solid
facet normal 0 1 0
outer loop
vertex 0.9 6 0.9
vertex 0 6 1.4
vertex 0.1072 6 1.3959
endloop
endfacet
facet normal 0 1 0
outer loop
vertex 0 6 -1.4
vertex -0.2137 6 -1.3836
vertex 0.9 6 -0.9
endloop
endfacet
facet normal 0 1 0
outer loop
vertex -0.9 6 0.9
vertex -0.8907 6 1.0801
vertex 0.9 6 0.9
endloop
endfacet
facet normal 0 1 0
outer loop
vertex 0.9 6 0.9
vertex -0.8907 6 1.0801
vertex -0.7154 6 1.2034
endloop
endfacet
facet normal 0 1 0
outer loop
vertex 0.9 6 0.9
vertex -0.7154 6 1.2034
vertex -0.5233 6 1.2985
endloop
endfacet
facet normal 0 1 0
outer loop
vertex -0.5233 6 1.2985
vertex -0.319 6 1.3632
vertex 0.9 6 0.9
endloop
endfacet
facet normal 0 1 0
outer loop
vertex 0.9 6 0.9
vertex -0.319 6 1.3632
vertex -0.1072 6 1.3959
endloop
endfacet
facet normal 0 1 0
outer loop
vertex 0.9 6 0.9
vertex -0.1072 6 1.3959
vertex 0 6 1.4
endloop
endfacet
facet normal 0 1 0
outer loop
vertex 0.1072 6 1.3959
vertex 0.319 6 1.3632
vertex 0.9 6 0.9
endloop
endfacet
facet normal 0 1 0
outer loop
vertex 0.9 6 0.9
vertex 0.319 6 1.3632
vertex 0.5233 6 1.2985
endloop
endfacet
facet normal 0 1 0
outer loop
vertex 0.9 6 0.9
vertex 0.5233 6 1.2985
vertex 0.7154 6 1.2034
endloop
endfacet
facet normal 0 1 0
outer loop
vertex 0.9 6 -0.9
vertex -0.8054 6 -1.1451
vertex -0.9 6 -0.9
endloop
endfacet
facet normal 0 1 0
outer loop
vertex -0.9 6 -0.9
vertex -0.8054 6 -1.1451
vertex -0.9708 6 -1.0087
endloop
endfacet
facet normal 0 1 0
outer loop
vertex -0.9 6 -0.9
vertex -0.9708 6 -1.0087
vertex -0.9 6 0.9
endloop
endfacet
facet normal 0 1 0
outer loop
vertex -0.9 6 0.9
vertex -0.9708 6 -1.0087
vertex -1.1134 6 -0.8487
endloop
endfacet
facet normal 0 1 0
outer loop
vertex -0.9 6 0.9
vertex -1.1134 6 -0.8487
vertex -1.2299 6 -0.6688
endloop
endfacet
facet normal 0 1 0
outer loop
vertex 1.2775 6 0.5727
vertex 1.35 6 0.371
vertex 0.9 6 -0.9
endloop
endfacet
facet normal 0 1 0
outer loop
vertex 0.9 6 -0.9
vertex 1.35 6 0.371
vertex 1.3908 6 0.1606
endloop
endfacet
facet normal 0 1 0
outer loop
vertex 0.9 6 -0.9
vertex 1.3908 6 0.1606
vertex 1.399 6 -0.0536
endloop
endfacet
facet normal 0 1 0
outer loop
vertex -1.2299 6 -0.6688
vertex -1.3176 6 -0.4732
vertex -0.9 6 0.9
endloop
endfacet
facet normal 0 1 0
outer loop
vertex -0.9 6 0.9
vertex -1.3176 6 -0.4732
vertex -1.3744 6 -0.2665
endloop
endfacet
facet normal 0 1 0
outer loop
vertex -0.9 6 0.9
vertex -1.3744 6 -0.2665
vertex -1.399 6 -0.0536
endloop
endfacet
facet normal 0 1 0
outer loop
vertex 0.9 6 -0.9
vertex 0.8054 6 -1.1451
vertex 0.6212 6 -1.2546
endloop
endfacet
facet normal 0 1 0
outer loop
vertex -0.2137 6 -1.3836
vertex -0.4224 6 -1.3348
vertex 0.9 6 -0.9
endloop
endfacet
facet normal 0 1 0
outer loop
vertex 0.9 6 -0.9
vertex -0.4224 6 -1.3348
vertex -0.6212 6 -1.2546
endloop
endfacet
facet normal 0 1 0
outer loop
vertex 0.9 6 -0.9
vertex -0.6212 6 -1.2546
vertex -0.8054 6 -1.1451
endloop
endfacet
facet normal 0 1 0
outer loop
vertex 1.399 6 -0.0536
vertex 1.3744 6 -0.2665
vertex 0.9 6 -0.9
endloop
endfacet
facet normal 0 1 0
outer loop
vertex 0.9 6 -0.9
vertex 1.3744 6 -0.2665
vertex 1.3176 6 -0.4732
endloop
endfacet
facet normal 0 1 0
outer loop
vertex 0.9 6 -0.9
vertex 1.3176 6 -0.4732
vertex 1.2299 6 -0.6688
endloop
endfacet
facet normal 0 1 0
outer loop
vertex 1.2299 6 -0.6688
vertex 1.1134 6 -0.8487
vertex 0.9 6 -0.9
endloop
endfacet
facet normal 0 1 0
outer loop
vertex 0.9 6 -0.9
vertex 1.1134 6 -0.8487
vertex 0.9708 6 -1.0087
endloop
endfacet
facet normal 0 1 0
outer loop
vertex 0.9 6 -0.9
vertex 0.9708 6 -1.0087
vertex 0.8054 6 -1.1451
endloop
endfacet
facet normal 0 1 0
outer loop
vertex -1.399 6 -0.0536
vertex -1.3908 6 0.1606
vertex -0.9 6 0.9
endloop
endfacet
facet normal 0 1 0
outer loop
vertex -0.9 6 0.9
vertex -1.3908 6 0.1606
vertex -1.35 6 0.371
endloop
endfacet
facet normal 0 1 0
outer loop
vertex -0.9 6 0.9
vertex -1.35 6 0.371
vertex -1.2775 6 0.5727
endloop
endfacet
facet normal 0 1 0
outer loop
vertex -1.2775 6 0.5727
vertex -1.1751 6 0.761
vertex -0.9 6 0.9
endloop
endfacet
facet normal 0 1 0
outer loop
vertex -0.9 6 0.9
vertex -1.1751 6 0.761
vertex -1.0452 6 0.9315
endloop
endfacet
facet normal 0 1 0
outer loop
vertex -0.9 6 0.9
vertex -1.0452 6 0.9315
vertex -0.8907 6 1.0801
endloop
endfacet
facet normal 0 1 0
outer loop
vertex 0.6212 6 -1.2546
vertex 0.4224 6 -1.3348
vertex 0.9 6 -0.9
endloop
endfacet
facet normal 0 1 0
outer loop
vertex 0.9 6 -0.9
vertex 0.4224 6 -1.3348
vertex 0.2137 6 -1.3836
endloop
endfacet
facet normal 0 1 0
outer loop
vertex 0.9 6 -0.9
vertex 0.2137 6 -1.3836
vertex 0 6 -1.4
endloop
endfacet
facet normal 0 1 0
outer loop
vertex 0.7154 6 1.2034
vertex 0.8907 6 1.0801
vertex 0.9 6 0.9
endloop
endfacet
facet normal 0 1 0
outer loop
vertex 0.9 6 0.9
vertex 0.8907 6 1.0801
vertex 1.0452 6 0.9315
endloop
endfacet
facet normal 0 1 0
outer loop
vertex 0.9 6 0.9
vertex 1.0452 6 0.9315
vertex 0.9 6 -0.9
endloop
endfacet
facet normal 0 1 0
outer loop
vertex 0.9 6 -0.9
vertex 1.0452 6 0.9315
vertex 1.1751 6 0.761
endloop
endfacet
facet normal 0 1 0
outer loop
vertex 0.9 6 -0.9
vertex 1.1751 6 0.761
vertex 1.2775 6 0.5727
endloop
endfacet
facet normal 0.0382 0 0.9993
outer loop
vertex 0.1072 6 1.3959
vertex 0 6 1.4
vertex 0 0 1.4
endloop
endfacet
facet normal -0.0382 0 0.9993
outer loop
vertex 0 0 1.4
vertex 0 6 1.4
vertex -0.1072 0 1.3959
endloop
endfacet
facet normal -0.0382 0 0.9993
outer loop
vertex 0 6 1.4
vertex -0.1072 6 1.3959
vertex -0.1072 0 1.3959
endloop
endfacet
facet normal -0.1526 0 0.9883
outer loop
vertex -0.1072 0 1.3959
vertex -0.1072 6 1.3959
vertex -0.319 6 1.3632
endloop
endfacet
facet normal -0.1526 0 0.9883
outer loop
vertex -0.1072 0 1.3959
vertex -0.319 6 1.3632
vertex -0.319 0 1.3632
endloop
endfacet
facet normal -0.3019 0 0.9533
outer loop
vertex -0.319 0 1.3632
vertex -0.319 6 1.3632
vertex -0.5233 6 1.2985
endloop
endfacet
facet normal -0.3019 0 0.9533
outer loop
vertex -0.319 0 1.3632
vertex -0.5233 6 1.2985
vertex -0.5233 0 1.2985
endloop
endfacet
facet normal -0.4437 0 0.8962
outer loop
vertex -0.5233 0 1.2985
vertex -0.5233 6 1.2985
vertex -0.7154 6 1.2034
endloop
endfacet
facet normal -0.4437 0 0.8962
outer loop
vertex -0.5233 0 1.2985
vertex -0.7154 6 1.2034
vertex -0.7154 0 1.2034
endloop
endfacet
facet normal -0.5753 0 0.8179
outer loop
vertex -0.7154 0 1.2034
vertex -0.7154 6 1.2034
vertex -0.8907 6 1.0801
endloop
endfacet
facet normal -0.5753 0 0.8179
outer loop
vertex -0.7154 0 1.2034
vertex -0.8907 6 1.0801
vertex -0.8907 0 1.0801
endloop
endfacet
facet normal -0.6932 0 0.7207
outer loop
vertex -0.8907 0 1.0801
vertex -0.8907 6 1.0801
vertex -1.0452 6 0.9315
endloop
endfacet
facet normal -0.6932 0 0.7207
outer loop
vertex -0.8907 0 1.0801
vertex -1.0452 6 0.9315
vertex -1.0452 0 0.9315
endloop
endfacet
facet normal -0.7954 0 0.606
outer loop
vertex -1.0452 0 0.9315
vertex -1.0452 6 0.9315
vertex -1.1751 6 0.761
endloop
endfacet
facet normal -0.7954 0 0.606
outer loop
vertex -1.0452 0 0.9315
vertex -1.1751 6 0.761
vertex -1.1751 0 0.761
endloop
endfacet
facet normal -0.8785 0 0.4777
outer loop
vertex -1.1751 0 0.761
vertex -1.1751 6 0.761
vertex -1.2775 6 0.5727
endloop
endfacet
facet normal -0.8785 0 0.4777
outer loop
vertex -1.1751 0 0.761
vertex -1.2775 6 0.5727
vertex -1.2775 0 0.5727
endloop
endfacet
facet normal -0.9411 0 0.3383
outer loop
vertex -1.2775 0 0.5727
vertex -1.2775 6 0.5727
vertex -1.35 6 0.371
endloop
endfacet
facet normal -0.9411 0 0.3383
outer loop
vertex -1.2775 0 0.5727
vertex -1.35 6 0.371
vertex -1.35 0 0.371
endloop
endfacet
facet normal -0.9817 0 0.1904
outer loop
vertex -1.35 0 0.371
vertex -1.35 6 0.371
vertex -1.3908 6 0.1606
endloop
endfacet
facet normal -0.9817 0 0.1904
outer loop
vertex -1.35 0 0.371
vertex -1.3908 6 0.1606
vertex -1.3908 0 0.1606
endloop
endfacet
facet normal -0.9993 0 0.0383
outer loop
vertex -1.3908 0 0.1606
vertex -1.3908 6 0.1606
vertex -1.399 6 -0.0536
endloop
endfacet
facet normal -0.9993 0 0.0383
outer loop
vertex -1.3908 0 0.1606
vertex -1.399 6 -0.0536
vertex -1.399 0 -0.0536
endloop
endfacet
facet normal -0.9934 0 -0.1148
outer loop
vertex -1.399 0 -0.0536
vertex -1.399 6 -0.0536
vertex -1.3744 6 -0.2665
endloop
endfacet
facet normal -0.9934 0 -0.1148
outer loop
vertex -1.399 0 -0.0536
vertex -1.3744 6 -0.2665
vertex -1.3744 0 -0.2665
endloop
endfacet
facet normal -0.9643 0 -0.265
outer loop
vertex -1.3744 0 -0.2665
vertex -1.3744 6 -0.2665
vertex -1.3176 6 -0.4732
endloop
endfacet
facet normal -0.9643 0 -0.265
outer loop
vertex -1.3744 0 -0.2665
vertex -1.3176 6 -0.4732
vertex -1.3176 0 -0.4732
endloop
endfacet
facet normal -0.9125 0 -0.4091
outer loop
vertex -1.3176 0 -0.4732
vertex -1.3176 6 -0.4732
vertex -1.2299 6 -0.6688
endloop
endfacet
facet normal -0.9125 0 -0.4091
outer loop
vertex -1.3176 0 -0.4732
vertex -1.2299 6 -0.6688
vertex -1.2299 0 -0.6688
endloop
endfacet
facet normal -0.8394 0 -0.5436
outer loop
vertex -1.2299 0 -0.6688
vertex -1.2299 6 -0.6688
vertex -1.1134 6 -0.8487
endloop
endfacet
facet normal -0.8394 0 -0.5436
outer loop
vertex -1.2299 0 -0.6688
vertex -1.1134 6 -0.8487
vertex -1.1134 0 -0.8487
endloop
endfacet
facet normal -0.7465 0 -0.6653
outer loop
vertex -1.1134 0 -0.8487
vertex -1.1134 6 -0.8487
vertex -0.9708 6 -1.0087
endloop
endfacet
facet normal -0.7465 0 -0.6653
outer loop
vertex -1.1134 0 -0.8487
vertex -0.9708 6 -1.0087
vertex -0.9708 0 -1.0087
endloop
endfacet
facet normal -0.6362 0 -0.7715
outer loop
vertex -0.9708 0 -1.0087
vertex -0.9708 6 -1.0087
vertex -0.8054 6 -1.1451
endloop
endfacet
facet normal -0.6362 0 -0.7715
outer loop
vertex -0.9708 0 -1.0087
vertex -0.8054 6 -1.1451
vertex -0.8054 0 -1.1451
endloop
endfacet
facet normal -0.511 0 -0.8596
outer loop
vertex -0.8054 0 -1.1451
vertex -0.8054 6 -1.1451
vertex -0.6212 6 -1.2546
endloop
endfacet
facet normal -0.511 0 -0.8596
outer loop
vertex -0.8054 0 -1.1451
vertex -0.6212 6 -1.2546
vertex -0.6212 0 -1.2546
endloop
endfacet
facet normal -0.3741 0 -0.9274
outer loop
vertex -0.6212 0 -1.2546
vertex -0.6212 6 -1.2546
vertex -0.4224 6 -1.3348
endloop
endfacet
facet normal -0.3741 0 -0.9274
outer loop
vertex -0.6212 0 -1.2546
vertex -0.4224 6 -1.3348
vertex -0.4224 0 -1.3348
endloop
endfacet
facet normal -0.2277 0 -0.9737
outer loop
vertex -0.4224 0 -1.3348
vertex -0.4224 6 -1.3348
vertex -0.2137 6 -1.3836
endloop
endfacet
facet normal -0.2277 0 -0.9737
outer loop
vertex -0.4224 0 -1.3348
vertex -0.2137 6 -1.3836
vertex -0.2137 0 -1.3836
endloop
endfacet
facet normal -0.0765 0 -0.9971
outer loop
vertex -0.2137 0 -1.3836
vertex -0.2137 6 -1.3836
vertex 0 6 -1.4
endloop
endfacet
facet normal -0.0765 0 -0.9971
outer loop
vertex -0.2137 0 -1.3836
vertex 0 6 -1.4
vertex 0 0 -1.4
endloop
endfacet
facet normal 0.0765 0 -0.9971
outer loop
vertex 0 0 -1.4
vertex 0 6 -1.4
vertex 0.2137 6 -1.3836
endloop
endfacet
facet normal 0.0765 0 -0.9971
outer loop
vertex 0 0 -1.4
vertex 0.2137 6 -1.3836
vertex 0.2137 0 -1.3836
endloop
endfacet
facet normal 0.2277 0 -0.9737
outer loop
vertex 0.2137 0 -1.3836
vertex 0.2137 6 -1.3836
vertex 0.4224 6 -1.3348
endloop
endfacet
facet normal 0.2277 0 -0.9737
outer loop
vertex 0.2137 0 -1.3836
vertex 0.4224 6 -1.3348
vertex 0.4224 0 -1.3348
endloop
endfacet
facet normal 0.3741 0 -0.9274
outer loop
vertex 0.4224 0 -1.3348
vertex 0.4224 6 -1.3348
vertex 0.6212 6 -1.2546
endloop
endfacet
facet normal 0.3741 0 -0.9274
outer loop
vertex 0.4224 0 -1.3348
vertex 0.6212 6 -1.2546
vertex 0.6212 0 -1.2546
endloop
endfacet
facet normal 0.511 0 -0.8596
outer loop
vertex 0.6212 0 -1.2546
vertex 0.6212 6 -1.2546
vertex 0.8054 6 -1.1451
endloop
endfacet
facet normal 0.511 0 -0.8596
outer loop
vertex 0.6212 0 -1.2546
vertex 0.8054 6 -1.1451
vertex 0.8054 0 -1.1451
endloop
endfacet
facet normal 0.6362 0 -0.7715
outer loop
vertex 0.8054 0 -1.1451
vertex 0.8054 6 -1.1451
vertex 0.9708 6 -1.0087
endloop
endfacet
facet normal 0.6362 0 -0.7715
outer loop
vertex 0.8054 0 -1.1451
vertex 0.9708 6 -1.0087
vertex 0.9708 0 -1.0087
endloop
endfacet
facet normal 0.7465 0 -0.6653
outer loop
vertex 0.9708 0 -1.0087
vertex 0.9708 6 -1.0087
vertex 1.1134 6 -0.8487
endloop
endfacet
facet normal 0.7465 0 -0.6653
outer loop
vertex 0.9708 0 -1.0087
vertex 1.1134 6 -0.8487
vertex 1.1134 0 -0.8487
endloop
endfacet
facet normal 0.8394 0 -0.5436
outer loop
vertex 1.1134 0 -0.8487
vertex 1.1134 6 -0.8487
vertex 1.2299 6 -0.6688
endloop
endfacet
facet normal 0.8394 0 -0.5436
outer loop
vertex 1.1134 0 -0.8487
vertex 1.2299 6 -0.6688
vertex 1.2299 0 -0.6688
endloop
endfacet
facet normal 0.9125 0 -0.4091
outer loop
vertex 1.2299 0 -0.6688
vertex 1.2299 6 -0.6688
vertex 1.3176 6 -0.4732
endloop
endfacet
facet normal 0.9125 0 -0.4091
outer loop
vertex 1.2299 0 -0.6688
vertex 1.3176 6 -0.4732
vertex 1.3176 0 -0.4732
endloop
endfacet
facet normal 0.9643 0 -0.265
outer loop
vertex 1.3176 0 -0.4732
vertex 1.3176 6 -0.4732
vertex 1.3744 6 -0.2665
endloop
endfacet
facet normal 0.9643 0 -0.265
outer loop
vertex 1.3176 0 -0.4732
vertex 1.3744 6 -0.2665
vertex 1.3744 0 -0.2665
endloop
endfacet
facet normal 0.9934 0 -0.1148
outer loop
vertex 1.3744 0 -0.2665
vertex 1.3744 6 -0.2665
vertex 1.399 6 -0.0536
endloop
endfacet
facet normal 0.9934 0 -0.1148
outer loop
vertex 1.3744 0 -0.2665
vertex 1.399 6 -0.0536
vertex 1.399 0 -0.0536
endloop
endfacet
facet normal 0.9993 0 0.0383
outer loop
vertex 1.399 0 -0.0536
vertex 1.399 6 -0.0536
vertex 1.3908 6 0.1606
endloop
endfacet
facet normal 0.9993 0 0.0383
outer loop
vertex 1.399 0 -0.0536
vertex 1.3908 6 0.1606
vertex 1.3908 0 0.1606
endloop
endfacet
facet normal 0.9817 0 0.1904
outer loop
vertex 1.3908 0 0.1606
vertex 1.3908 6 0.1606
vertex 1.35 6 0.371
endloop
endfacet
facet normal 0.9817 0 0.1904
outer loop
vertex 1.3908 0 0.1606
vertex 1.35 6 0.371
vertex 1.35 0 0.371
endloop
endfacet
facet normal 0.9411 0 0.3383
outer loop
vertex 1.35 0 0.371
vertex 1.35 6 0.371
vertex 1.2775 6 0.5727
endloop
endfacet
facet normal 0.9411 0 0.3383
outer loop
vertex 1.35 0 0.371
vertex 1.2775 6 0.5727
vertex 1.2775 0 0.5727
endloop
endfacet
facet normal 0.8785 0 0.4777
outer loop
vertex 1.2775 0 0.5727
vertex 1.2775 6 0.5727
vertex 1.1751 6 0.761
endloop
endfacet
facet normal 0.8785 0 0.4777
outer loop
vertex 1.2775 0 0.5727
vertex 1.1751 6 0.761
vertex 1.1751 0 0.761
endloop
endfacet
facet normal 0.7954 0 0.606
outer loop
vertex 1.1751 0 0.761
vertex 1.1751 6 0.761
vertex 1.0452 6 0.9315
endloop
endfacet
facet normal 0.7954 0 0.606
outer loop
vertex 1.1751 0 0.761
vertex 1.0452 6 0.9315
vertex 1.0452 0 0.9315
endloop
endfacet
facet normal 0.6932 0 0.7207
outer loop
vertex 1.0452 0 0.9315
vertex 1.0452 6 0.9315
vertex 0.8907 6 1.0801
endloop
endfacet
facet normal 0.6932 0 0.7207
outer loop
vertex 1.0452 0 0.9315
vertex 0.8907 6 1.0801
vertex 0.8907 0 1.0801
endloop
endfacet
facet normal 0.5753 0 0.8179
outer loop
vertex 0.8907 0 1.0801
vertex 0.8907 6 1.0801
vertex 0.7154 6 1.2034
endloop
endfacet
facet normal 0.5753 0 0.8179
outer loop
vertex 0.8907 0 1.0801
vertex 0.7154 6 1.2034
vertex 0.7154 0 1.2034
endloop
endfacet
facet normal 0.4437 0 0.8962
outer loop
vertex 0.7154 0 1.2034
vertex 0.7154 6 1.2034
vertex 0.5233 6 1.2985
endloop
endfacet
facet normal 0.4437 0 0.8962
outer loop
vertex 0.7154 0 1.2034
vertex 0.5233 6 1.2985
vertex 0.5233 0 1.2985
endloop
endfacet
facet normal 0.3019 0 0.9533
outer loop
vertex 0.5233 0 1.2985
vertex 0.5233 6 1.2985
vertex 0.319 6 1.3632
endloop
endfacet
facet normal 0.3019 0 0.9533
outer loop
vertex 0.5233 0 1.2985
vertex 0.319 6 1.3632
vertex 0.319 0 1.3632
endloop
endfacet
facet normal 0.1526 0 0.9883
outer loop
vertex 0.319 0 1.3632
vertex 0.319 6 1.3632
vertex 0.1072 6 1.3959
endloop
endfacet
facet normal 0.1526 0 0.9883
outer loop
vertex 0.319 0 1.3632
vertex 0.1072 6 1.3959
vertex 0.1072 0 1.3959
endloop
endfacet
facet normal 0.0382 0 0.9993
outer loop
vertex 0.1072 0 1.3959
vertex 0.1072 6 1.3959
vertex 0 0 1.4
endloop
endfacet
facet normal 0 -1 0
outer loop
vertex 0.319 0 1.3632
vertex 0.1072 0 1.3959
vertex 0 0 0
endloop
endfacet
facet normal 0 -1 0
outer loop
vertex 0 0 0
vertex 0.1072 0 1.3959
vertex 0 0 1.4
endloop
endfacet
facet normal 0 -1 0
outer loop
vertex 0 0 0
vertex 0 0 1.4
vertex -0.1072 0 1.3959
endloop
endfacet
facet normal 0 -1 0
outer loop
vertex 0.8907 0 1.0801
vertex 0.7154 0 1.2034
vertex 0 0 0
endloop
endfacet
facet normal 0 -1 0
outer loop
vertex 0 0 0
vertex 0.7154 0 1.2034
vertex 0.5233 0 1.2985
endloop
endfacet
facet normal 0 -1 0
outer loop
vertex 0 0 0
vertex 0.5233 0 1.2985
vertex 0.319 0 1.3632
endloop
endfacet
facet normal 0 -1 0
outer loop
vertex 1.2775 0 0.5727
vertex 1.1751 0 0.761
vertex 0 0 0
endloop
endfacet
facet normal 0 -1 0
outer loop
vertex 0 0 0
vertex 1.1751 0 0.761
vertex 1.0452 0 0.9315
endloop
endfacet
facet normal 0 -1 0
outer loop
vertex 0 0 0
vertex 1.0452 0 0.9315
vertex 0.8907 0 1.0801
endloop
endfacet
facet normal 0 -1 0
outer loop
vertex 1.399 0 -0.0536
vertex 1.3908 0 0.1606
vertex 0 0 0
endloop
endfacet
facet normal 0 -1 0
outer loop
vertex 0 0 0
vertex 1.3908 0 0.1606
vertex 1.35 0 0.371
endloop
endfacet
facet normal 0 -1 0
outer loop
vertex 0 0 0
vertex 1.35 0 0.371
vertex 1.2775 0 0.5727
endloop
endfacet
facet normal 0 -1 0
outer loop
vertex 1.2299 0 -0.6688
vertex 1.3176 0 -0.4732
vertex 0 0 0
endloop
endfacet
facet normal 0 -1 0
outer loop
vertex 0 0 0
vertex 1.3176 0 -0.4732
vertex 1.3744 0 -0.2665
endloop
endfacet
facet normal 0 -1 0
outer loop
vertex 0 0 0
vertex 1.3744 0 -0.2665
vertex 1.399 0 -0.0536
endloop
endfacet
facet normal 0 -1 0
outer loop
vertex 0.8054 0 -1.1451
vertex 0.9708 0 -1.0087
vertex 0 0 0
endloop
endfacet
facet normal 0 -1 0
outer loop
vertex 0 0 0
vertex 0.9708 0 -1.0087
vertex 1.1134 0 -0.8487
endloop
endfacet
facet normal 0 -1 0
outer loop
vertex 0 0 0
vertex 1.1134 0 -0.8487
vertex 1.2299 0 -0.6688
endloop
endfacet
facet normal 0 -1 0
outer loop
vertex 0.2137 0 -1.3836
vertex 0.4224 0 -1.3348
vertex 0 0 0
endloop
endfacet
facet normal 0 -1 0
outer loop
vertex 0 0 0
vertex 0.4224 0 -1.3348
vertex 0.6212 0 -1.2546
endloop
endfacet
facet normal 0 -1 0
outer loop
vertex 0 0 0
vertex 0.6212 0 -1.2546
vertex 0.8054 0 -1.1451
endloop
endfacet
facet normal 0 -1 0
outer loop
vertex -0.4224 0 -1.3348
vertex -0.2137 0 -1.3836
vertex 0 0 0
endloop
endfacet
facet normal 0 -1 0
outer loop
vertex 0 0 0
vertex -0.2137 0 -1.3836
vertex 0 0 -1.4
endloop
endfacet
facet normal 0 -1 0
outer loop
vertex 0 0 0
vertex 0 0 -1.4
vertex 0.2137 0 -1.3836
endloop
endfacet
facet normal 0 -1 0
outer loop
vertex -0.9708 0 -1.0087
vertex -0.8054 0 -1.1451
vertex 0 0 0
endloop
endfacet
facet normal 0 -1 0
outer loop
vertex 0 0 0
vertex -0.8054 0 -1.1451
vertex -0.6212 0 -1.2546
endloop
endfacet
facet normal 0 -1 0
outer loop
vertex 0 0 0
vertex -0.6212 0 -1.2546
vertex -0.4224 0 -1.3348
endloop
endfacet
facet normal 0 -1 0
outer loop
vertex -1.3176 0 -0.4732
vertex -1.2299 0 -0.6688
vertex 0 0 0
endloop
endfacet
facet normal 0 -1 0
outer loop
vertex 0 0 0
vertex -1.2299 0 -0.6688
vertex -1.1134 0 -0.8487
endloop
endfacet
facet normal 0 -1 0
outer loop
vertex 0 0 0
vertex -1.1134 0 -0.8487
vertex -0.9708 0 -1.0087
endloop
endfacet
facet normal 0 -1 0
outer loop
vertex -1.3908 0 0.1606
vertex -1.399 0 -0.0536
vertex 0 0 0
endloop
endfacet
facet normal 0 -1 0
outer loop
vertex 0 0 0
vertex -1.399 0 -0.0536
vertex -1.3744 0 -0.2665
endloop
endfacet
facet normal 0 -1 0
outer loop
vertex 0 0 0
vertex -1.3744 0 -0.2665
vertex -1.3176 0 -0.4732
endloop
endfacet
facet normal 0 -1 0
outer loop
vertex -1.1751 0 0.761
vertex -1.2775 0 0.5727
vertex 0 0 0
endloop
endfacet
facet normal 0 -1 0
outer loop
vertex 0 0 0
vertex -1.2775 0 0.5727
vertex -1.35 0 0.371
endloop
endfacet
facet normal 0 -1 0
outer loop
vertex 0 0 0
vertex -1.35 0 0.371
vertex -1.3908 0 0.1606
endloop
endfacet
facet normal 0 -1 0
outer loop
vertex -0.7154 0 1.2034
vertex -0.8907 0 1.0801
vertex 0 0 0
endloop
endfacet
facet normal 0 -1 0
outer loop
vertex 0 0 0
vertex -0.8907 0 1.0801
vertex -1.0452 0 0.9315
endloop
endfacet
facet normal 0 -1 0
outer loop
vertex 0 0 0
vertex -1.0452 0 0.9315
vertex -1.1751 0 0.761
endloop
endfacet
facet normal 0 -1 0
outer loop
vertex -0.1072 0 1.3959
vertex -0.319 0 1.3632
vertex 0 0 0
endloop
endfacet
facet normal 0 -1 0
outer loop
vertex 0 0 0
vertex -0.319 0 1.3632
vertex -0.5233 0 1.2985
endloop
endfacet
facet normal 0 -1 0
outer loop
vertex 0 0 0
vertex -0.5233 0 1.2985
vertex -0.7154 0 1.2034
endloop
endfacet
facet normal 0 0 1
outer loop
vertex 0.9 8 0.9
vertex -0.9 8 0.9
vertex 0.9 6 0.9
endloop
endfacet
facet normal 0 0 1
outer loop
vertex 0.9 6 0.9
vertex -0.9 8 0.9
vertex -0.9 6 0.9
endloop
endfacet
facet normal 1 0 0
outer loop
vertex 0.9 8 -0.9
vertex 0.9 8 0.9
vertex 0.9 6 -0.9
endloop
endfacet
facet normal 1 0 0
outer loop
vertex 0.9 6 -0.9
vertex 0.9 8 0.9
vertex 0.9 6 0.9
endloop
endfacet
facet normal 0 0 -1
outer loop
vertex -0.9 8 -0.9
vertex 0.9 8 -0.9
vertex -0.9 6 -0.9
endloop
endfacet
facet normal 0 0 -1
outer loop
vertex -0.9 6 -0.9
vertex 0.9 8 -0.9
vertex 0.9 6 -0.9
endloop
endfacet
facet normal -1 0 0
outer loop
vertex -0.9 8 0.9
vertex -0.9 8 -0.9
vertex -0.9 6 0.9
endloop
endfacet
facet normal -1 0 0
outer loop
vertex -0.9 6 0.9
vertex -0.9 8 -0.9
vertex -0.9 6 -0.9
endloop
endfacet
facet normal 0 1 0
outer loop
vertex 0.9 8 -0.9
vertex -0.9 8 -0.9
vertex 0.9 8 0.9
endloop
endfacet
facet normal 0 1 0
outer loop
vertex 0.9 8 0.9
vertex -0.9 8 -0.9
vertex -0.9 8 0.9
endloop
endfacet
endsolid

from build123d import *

# Parameters (mm, degrees)
SKETCH1_R           = 1.4
BOSS_EXTRUDE1_DEPTH = 6
SKETCH2_W           = 0.9
SKETCH2_H           = 0.9
BOSS_EXTRUDE2_DEPTH = 2


with BuildPart() as part:
    # Sketch1 → Boss-Extrude1 (new body)
    with BuildSketch(Plane(origin=(0, 0, 0), x_dir=(1, 0, 0), z_dir=(0, 1, 0))):
        with Locations(Location((0, 0, 0), (0, 0, 270))):
            Circle(SKETCH1_R)
    extrude(amount=BOSS_EXTRUDE1_DEPTH)

    # Sketch2 → Boss-Extrude2 (add)
    with BuildSketch(Plane(origin=(0, 6, 0), x_dir=(1, 0, 0), z_dir=(0, 1, 0))):
        with Locations((-0.45, 0.45)):
            Rectangle(SKETCH2_W, SKETCH2_H)
        with Locations((-0.45, -0.45)):
            Rectangle(SKETCH2_W, SKETCH2_H)
        with Locations((0.45, 0.45)):
            Rectangle(SKETCH2_W, SKETCH2_H)
        with Locations((0.45, -0.45)):
            Rectangle(SKETCH2_W, SKETCH2_H)
    extrude(amount=BOSS_EXTRUDE2_DEPTH)


solid = part.part
